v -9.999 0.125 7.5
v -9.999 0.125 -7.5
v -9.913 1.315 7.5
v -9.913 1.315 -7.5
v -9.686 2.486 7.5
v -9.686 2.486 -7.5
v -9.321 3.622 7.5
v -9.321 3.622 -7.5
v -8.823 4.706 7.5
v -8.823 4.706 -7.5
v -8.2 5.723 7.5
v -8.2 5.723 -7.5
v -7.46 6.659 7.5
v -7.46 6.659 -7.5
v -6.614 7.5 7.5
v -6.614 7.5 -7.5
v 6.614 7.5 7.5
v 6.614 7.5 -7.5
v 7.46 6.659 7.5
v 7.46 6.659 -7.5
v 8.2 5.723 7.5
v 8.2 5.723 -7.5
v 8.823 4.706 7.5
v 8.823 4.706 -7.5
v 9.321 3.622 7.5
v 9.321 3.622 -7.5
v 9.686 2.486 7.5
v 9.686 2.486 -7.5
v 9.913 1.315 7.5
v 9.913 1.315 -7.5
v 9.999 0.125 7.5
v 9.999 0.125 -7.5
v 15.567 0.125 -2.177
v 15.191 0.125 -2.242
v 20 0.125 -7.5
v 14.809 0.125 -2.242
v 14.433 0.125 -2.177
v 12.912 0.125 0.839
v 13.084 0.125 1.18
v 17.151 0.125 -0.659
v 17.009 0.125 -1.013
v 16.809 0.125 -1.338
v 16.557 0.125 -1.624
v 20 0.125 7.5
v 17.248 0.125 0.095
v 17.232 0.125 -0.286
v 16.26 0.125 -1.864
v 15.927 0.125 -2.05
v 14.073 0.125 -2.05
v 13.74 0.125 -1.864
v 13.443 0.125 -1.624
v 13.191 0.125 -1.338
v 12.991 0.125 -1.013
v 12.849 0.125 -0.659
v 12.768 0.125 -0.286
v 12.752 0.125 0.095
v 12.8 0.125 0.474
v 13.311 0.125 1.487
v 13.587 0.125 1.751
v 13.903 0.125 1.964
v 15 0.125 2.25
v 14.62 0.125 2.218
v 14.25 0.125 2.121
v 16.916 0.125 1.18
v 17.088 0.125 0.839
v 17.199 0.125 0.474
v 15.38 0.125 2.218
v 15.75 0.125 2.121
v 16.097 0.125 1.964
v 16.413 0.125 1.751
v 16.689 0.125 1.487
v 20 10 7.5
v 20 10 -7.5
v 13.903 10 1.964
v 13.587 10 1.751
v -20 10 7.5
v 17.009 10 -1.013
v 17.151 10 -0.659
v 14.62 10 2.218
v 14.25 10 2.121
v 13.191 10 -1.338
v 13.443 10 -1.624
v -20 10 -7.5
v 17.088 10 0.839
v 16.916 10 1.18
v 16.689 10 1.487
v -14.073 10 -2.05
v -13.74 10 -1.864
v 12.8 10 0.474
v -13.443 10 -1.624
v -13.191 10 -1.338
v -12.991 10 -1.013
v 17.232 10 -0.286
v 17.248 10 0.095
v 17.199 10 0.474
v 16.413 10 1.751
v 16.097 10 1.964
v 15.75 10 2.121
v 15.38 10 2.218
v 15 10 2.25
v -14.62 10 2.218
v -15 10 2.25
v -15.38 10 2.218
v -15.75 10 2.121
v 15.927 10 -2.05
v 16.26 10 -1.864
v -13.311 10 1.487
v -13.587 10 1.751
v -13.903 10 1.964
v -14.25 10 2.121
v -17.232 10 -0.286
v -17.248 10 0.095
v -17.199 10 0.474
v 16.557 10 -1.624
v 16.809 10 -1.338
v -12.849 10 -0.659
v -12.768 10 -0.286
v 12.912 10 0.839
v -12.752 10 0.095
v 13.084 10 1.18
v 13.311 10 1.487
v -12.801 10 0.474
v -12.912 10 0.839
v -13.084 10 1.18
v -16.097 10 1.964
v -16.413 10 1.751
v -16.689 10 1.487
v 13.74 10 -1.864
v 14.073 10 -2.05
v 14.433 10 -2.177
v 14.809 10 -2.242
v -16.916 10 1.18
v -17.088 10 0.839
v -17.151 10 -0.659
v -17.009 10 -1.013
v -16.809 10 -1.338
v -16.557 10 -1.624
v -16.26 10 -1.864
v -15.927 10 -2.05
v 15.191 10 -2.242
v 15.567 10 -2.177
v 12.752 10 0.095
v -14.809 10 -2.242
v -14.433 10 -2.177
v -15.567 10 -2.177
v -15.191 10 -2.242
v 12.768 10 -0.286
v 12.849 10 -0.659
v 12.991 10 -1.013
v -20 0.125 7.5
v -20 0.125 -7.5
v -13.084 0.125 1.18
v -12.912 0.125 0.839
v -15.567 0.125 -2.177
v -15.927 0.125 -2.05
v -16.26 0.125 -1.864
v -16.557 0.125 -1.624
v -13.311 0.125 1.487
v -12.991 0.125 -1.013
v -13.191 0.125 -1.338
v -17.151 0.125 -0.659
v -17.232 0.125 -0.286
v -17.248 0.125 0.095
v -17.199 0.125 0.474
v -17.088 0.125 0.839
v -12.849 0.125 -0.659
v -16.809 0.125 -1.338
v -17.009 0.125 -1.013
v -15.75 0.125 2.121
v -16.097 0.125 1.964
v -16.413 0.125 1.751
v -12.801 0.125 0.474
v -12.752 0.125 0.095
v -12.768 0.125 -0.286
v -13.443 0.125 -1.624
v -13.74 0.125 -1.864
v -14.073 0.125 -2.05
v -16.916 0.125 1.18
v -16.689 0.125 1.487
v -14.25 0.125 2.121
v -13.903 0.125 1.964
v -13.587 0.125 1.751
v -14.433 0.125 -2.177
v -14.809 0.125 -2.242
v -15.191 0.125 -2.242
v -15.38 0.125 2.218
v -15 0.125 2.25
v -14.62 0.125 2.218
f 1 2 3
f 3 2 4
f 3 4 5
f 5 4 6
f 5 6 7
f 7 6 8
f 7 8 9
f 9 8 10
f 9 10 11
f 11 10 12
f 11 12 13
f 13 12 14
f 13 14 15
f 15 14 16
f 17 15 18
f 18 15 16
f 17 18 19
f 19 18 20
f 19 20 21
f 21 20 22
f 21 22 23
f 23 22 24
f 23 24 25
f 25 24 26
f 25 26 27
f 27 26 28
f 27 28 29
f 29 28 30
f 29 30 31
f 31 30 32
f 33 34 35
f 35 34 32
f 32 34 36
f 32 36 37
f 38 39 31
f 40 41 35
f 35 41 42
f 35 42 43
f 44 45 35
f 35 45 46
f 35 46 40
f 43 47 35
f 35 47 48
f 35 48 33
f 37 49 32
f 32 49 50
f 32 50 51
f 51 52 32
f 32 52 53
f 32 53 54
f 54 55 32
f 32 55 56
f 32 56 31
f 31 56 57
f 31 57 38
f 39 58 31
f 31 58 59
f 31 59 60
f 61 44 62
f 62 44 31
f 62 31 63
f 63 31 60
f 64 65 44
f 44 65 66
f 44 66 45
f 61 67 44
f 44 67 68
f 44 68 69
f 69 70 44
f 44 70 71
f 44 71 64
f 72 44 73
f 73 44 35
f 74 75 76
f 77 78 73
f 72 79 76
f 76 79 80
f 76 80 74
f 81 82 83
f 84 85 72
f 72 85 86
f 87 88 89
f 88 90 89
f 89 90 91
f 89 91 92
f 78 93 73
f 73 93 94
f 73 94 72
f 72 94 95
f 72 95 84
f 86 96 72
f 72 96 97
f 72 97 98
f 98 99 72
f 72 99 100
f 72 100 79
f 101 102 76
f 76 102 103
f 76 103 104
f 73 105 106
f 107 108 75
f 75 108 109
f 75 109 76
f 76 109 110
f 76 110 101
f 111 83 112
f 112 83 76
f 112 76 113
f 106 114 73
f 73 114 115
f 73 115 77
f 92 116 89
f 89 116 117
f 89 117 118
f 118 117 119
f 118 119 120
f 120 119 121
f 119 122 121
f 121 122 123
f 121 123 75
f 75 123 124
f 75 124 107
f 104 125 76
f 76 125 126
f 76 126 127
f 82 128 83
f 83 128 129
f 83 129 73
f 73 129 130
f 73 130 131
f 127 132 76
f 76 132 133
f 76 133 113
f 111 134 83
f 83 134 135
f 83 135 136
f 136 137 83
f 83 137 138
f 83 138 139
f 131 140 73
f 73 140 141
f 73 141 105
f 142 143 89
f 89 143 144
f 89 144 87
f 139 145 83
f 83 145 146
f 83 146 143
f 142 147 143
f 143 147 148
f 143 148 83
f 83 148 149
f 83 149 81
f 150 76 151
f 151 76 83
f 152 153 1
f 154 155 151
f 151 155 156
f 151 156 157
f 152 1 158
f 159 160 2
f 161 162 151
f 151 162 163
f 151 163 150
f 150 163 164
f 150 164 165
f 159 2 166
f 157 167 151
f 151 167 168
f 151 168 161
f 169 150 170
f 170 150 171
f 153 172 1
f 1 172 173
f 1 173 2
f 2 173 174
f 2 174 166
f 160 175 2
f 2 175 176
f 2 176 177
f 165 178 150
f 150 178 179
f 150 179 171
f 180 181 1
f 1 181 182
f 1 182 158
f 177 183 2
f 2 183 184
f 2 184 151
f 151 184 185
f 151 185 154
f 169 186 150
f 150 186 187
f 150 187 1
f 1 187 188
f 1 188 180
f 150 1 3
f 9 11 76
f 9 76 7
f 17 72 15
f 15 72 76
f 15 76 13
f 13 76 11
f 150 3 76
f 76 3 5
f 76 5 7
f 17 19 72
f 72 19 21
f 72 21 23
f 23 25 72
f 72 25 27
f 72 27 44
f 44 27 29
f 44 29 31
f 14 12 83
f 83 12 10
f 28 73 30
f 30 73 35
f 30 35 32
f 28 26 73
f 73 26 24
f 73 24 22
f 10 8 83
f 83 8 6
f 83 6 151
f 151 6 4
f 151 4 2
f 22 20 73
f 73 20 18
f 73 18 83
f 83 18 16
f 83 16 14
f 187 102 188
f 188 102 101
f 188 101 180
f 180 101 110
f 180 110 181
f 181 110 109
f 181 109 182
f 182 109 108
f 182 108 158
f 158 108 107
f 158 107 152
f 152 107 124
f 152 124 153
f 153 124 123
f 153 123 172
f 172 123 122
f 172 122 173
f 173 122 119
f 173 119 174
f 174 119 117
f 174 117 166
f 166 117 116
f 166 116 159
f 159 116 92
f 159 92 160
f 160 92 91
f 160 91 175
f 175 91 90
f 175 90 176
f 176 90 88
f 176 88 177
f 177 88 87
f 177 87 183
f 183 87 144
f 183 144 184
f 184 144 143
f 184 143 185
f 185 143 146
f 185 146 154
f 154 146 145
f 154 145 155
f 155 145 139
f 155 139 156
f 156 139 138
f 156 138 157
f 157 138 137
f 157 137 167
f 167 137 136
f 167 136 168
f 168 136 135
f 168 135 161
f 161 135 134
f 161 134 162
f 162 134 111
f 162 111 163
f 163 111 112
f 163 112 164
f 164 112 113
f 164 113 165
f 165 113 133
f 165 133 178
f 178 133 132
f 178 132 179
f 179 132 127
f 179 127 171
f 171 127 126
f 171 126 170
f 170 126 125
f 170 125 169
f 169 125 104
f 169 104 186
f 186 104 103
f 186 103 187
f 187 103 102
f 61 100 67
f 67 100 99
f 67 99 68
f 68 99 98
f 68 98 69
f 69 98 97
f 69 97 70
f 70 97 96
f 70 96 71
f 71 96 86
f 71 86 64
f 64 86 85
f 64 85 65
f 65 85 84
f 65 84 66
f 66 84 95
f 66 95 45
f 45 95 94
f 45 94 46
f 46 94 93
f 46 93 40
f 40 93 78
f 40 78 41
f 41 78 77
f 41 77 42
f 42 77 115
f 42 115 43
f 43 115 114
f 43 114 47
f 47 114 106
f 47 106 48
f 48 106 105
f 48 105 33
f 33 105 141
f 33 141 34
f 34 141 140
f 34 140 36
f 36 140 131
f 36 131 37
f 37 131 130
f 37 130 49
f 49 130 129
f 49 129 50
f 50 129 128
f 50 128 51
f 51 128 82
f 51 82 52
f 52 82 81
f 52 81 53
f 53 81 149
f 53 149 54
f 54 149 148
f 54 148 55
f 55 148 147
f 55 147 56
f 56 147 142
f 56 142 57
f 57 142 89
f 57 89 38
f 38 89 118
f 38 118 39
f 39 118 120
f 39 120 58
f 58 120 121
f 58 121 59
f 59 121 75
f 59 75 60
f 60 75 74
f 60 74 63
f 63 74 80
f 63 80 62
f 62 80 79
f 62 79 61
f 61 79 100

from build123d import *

# Parameters (mm, degrees)
MOTOR_CLAMP_OUTLINE_SOLID_DEPTH     = 7.5
MOTOR_CLAMP_MOUNTING_HOLES_SKETCH_R = 2.25
MOTOR_CLAMP_MOUNTING_HOLE_CUT_DEPTH = 24.532225245


with BuildPart() as part:
    # Motor Clamp Outline Sketch → Motor Clamp Outline Solid (new, symmetric)
    with BuildSketch(Plane.XY):
        with BuildLine():
            Line((-20, 0.125), (-9.999218719, 0.125))
            ThreePointArc((-9.999218719, 0.125), (-9.088484887, 4.171263892), (-6.614378278, 7.5))
            Line((-6.614378278, 7.5), (6.614378278, 7.5))
            ThreePointArc((6.614378278, 7.5), (9.088484887, 4.171263892), (9.999218719, 0.125))
            Line((9.999218719, 0.125), (20, 0.125))
            Line((20, 0.125), (20, 10))
            Line((20, 10), (-20, 10))
            Line((-20, 10), (-20, 0.125))
        make_face()
    extrude(amount=MOTOR_CLAMP_OUTLINE_SOLID_DEPTH, both=True)

    # Motor Clamp Mounting Holes Sketch → Motor Clamp Mounting Hole Cut (cut, through all)
    with BuildSketch(Plane(origin=(0, 10, 0), x_dir=(1, 0, 0), z_dir=(0, 1, 0))):
        with Locations(Location((-15, 0, 0), (0, 0, 270))):
            Circle(MOTOR_CLAMP_MOUNTING_HOLES_SKETCH_R)
        with Locations(Location((15, 0, 0), (0, 0, 270))):
            Circle(MOTOR_CLAMP_MOUNTING_HOLES_SKETCH_R)
    extrude(amount=-MOTOR_CLAMP_MOUNTING_HOLE_CUT_DEPTH, mode=Mode.SUBTRACT)


solid = part.part
